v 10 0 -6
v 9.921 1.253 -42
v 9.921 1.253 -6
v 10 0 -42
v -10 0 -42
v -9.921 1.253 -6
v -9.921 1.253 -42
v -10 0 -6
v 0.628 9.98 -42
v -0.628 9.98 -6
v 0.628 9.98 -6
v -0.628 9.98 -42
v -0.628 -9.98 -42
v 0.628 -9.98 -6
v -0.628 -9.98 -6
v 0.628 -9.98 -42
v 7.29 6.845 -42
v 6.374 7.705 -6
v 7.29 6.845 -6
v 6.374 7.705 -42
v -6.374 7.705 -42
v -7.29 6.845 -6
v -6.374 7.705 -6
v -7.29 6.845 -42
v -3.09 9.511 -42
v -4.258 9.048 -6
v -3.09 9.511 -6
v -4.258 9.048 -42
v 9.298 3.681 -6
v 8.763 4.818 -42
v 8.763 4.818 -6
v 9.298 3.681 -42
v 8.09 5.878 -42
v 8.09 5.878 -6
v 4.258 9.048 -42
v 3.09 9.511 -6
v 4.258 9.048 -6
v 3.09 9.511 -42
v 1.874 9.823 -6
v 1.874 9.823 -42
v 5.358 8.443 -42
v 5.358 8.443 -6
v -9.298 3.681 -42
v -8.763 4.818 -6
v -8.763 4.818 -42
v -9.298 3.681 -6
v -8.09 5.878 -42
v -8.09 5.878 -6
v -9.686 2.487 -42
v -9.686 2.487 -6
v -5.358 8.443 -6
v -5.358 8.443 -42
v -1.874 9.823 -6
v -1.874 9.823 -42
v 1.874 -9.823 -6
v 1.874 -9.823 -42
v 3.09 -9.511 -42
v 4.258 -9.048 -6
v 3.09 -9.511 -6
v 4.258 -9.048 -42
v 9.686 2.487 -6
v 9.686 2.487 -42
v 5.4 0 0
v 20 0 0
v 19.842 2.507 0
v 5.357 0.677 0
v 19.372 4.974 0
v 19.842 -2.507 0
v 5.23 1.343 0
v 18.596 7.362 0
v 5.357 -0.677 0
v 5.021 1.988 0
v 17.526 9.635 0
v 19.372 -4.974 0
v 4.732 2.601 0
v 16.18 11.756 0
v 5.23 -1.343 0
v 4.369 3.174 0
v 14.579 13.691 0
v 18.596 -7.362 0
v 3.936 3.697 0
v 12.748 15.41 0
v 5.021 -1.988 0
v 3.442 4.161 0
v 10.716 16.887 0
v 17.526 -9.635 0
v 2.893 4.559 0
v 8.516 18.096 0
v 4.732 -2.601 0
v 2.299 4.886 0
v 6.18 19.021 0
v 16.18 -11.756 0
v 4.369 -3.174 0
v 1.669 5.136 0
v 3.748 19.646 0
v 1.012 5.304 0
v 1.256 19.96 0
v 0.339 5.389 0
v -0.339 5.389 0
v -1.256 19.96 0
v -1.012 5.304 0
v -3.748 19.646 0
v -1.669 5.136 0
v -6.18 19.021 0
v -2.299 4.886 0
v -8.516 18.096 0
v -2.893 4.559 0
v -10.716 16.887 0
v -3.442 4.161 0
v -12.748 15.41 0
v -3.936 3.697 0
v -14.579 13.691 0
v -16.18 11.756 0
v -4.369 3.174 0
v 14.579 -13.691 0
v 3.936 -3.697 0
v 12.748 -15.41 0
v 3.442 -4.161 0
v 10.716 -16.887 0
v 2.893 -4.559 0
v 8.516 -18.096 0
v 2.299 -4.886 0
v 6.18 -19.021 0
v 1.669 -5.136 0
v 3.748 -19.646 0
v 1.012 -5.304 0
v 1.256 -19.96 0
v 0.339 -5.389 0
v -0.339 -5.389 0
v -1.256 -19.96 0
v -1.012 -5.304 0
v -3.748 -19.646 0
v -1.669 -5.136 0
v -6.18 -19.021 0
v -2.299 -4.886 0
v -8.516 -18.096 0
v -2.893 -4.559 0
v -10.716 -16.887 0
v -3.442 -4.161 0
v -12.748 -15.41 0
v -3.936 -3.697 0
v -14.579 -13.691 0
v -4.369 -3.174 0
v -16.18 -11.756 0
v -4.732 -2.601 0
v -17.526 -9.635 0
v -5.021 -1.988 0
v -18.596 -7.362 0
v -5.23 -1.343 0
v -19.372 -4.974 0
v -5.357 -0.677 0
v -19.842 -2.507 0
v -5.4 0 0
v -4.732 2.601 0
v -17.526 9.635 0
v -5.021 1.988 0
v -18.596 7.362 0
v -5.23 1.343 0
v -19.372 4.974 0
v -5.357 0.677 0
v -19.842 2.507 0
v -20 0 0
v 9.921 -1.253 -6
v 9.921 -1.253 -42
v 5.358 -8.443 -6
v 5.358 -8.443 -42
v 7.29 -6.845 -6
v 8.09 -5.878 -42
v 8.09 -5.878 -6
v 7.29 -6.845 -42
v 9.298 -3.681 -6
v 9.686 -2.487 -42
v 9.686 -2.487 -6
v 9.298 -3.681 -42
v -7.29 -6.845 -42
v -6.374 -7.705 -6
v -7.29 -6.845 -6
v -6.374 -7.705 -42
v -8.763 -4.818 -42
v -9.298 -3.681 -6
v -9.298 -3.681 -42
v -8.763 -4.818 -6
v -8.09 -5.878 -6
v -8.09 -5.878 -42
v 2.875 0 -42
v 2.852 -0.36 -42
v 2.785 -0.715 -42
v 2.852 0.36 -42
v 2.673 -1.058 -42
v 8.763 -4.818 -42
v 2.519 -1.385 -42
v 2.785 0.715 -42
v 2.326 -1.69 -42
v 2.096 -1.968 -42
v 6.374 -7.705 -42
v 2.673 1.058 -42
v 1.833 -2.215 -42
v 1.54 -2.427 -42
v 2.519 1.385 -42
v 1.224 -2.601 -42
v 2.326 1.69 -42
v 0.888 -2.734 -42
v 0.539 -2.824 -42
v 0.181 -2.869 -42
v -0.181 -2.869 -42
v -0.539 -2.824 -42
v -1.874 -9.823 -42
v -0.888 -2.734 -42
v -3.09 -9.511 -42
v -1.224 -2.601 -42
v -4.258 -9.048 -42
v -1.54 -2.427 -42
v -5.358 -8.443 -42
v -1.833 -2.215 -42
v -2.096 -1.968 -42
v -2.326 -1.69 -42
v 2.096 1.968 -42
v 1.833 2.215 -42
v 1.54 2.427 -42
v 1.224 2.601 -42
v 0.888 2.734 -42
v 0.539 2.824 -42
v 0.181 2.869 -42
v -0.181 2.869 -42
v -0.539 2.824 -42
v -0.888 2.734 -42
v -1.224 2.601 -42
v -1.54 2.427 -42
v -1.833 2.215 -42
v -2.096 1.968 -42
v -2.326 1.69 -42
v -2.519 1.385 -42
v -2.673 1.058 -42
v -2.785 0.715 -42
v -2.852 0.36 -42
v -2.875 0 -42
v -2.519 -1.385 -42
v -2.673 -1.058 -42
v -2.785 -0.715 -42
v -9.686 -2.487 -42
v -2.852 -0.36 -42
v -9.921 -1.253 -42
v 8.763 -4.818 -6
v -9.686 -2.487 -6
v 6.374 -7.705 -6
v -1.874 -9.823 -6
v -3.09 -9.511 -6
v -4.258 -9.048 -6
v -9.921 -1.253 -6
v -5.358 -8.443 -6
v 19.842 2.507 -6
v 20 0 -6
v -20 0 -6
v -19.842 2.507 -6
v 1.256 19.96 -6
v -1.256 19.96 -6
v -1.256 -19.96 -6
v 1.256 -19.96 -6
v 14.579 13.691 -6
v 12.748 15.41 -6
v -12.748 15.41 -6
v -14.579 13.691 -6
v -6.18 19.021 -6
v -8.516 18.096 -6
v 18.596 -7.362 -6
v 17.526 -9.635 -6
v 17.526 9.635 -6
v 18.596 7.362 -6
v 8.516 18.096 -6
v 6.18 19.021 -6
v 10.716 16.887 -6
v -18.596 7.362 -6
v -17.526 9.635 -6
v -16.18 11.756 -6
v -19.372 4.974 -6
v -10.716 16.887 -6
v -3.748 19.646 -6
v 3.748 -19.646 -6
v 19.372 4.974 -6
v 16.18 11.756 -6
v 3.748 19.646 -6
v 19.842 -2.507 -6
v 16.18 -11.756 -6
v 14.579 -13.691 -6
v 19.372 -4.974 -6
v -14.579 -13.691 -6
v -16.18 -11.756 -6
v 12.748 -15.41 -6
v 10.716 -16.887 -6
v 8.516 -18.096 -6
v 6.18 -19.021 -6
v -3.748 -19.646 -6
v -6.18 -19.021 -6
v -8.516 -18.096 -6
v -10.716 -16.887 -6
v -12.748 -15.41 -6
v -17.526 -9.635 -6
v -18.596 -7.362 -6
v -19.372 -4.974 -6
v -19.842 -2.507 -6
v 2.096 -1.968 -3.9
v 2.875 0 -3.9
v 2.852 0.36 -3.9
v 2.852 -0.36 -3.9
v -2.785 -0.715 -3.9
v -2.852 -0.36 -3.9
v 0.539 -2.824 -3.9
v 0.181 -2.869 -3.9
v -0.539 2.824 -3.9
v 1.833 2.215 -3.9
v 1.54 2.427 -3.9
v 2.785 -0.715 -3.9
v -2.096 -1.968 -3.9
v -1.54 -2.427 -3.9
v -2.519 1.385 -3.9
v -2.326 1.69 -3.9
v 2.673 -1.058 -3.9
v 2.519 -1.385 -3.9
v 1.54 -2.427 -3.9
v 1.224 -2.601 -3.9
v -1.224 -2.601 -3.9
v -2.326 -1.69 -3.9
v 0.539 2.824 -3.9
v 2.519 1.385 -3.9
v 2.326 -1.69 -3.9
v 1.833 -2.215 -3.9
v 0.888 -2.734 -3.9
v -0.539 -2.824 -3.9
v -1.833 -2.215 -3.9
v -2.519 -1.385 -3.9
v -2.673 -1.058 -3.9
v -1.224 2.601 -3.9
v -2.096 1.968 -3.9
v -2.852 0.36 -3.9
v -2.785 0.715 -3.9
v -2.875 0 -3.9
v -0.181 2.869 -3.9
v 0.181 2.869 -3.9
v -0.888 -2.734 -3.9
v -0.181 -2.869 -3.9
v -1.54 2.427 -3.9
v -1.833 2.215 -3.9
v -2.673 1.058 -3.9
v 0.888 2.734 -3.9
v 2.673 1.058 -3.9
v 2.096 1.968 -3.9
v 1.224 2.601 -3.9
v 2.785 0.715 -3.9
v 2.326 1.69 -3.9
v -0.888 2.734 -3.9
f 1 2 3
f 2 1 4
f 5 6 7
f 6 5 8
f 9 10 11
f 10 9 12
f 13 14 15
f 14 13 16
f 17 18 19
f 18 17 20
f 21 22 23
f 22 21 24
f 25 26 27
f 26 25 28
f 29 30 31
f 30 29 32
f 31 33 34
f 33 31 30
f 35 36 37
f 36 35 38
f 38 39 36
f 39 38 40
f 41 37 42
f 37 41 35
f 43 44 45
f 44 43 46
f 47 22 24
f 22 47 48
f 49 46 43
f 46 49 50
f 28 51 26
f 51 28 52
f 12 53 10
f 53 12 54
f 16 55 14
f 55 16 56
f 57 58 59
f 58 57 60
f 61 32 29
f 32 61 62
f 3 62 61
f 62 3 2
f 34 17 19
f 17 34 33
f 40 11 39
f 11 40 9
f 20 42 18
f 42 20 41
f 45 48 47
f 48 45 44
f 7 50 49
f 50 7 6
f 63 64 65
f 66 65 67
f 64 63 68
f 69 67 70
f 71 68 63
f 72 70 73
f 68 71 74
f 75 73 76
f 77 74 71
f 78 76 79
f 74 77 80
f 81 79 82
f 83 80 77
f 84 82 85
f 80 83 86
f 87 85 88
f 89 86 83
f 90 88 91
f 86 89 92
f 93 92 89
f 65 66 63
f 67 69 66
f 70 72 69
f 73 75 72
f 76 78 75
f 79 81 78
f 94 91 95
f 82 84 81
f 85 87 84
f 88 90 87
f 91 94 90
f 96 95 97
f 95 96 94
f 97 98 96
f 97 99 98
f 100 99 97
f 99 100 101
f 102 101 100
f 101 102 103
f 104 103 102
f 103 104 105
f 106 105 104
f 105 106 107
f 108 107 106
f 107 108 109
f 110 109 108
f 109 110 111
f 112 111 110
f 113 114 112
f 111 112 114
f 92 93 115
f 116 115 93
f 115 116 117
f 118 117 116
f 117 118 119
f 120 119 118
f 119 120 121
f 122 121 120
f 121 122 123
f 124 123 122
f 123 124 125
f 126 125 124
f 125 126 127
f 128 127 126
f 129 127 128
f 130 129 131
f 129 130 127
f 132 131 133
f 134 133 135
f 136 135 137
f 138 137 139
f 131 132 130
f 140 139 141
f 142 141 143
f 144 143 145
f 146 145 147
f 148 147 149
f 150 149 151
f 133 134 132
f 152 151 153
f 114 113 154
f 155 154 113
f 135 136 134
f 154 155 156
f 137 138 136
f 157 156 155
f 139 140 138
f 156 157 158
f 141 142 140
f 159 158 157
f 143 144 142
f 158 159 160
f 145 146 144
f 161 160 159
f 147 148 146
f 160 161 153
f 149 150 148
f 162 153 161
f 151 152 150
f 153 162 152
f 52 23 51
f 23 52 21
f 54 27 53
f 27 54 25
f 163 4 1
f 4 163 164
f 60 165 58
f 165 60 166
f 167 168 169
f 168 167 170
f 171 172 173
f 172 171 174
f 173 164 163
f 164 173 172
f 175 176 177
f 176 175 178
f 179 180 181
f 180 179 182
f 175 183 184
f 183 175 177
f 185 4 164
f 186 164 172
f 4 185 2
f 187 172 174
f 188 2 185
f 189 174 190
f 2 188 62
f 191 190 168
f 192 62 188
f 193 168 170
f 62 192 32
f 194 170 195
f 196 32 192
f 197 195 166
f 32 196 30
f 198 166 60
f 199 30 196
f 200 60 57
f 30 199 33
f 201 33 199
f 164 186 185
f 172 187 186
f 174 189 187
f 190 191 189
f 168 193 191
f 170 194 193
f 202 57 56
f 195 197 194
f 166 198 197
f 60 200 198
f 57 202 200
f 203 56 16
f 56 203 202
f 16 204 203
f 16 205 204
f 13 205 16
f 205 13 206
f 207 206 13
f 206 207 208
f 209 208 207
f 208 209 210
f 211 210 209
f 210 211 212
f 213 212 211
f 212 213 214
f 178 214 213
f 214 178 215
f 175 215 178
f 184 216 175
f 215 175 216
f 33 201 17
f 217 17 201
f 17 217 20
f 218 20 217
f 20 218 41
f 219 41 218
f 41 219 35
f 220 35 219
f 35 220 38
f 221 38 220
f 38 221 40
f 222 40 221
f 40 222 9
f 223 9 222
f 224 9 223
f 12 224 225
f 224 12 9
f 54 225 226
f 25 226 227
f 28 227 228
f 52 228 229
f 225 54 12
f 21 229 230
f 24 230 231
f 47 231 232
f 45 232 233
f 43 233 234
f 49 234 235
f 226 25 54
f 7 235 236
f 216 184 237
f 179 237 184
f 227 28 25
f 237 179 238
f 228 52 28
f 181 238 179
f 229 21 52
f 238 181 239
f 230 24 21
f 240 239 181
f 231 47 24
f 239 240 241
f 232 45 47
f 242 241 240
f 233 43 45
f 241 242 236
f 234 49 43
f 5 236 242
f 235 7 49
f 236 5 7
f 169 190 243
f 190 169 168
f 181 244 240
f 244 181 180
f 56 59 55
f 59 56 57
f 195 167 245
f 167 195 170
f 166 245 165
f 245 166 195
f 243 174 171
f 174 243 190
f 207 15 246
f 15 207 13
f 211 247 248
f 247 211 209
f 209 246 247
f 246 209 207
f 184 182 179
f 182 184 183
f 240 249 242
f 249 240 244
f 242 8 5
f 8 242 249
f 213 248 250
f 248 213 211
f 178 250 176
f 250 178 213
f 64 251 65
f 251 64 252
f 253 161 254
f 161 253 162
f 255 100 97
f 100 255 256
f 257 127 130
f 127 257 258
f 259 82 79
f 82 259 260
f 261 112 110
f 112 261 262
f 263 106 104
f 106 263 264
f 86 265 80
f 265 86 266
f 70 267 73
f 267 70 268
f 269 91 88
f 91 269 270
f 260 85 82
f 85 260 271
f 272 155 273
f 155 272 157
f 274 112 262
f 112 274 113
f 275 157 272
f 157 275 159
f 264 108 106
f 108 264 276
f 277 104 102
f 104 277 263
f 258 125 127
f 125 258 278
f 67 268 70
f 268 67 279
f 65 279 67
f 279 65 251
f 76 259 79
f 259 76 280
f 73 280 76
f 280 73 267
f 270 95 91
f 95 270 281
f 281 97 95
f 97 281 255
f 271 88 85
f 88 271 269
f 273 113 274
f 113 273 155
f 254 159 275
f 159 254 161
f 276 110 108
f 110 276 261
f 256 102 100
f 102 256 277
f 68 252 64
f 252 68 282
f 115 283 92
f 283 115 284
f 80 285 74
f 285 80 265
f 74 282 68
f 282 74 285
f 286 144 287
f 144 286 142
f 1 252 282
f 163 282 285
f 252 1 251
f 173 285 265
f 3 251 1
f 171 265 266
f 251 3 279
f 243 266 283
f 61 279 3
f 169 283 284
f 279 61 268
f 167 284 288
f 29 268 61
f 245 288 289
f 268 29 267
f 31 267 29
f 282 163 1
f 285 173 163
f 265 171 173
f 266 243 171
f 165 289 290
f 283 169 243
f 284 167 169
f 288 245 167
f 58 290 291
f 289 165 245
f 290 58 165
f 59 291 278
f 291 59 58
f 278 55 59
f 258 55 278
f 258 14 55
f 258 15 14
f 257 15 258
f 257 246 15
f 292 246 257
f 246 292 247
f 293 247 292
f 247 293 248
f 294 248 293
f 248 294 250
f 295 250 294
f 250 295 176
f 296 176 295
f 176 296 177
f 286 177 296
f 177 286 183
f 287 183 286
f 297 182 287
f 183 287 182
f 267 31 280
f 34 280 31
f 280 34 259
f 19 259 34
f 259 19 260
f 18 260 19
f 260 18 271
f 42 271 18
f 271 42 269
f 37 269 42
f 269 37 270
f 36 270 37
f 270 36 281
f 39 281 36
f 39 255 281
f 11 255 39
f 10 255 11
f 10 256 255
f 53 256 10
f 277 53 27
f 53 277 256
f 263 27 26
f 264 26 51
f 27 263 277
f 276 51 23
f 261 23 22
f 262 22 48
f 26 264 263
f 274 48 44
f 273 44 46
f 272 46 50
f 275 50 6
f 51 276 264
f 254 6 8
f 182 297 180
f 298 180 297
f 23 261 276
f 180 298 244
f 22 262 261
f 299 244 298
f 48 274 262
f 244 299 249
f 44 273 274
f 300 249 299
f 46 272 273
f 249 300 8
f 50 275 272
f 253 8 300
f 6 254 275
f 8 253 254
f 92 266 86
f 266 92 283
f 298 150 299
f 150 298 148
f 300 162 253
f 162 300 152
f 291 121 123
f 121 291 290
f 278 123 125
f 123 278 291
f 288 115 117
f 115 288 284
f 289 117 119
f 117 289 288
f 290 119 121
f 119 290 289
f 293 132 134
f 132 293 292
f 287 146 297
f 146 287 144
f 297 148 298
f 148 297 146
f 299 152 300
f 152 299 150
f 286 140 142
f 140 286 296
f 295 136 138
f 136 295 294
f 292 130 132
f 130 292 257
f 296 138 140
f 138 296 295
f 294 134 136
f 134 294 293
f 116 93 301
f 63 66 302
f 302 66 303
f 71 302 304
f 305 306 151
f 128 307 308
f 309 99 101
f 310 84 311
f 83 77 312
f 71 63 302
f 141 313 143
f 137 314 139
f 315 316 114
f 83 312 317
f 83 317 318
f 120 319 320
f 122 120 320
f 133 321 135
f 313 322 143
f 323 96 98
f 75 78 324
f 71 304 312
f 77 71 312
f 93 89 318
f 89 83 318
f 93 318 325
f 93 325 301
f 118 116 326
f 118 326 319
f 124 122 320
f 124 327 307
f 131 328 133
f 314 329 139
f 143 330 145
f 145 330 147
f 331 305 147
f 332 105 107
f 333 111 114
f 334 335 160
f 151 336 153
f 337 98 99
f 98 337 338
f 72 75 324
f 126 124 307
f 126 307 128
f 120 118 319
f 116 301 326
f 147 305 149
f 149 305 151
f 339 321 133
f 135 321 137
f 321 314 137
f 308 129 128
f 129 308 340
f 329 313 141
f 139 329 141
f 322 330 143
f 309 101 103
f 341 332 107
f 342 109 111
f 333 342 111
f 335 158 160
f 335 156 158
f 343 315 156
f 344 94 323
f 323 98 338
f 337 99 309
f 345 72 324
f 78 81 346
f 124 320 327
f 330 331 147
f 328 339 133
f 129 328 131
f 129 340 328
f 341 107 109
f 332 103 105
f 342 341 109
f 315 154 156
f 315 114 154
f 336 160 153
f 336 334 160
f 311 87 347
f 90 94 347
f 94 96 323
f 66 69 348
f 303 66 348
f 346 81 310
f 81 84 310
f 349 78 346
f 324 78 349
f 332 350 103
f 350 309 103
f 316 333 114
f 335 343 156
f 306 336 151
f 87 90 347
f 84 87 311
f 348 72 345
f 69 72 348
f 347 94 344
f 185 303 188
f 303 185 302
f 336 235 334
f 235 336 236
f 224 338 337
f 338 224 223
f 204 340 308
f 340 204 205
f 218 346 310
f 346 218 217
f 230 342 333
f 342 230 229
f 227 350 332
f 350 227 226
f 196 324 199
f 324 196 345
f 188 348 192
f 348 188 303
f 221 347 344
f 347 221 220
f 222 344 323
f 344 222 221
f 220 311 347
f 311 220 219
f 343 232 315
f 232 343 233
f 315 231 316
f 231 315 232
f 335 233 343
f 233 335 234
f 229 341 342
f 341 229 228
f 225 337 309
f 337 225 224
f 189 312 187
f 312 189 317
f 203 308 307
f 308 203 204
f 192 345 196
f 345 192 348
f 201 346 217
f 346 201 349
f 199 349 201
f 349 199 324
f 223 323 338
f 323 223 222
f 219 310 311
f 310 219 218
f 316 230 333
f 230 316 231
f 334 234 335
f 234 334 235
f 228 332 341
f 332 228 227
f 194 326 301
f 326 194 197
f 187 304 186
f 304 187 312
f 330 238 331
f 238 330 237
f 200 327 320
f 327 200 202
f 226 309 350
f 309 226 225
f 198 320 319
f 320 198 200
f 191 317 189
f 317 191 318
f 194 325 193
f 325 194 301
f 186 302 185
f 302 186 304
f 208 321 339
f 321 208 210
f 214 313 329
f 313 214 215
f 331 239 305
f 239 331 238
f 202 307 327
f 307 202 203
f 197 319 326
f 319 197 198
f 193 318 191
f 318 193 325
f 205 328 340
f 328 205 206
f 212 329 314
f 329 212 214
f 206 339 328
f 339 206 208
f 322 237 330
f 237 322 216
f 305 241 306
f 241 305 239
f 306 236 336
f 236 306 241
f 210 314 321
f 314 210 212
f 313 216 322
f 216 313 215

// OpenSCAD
$fn = 50;


difference() {
	union() {
		translate(v = [0, 0, -42.0000000000]) {
			cylinder(h = 42, r = 10.0000000000);
		}
		translate(v = [0, 0, -6.0000000000]) {
			cylinder(h = 6, r = 20.0000000000);
		}
	}
	union() {
		translate(v = [0, 0, 0]) {
			rotate(a = [0, 0, 0]) {
				difference() {
					union() {
						#translate(v = [0, 0, -42.0000000000]) {
							cylinder(h = 42, r = 2.6000000000);
						}
						#translate(v = [0, 0, -3.9000000000]) {
							cylinder(h = 3.9000000000, r = 10.0000000000, r1 = 2.8750000000, r2 = 5.4000000000);
						}
						#translate(v = [0, 0, -42.0000000000]) {
							cylinder(h = 42, r = 2.8750000000);
						}
						#translate(v = [0, 0, -42.0000000000]) {
							cylinder(h = 42, r = 2.6000000000);
						}
					}
					union();
				}
			}
		}
	}
}
